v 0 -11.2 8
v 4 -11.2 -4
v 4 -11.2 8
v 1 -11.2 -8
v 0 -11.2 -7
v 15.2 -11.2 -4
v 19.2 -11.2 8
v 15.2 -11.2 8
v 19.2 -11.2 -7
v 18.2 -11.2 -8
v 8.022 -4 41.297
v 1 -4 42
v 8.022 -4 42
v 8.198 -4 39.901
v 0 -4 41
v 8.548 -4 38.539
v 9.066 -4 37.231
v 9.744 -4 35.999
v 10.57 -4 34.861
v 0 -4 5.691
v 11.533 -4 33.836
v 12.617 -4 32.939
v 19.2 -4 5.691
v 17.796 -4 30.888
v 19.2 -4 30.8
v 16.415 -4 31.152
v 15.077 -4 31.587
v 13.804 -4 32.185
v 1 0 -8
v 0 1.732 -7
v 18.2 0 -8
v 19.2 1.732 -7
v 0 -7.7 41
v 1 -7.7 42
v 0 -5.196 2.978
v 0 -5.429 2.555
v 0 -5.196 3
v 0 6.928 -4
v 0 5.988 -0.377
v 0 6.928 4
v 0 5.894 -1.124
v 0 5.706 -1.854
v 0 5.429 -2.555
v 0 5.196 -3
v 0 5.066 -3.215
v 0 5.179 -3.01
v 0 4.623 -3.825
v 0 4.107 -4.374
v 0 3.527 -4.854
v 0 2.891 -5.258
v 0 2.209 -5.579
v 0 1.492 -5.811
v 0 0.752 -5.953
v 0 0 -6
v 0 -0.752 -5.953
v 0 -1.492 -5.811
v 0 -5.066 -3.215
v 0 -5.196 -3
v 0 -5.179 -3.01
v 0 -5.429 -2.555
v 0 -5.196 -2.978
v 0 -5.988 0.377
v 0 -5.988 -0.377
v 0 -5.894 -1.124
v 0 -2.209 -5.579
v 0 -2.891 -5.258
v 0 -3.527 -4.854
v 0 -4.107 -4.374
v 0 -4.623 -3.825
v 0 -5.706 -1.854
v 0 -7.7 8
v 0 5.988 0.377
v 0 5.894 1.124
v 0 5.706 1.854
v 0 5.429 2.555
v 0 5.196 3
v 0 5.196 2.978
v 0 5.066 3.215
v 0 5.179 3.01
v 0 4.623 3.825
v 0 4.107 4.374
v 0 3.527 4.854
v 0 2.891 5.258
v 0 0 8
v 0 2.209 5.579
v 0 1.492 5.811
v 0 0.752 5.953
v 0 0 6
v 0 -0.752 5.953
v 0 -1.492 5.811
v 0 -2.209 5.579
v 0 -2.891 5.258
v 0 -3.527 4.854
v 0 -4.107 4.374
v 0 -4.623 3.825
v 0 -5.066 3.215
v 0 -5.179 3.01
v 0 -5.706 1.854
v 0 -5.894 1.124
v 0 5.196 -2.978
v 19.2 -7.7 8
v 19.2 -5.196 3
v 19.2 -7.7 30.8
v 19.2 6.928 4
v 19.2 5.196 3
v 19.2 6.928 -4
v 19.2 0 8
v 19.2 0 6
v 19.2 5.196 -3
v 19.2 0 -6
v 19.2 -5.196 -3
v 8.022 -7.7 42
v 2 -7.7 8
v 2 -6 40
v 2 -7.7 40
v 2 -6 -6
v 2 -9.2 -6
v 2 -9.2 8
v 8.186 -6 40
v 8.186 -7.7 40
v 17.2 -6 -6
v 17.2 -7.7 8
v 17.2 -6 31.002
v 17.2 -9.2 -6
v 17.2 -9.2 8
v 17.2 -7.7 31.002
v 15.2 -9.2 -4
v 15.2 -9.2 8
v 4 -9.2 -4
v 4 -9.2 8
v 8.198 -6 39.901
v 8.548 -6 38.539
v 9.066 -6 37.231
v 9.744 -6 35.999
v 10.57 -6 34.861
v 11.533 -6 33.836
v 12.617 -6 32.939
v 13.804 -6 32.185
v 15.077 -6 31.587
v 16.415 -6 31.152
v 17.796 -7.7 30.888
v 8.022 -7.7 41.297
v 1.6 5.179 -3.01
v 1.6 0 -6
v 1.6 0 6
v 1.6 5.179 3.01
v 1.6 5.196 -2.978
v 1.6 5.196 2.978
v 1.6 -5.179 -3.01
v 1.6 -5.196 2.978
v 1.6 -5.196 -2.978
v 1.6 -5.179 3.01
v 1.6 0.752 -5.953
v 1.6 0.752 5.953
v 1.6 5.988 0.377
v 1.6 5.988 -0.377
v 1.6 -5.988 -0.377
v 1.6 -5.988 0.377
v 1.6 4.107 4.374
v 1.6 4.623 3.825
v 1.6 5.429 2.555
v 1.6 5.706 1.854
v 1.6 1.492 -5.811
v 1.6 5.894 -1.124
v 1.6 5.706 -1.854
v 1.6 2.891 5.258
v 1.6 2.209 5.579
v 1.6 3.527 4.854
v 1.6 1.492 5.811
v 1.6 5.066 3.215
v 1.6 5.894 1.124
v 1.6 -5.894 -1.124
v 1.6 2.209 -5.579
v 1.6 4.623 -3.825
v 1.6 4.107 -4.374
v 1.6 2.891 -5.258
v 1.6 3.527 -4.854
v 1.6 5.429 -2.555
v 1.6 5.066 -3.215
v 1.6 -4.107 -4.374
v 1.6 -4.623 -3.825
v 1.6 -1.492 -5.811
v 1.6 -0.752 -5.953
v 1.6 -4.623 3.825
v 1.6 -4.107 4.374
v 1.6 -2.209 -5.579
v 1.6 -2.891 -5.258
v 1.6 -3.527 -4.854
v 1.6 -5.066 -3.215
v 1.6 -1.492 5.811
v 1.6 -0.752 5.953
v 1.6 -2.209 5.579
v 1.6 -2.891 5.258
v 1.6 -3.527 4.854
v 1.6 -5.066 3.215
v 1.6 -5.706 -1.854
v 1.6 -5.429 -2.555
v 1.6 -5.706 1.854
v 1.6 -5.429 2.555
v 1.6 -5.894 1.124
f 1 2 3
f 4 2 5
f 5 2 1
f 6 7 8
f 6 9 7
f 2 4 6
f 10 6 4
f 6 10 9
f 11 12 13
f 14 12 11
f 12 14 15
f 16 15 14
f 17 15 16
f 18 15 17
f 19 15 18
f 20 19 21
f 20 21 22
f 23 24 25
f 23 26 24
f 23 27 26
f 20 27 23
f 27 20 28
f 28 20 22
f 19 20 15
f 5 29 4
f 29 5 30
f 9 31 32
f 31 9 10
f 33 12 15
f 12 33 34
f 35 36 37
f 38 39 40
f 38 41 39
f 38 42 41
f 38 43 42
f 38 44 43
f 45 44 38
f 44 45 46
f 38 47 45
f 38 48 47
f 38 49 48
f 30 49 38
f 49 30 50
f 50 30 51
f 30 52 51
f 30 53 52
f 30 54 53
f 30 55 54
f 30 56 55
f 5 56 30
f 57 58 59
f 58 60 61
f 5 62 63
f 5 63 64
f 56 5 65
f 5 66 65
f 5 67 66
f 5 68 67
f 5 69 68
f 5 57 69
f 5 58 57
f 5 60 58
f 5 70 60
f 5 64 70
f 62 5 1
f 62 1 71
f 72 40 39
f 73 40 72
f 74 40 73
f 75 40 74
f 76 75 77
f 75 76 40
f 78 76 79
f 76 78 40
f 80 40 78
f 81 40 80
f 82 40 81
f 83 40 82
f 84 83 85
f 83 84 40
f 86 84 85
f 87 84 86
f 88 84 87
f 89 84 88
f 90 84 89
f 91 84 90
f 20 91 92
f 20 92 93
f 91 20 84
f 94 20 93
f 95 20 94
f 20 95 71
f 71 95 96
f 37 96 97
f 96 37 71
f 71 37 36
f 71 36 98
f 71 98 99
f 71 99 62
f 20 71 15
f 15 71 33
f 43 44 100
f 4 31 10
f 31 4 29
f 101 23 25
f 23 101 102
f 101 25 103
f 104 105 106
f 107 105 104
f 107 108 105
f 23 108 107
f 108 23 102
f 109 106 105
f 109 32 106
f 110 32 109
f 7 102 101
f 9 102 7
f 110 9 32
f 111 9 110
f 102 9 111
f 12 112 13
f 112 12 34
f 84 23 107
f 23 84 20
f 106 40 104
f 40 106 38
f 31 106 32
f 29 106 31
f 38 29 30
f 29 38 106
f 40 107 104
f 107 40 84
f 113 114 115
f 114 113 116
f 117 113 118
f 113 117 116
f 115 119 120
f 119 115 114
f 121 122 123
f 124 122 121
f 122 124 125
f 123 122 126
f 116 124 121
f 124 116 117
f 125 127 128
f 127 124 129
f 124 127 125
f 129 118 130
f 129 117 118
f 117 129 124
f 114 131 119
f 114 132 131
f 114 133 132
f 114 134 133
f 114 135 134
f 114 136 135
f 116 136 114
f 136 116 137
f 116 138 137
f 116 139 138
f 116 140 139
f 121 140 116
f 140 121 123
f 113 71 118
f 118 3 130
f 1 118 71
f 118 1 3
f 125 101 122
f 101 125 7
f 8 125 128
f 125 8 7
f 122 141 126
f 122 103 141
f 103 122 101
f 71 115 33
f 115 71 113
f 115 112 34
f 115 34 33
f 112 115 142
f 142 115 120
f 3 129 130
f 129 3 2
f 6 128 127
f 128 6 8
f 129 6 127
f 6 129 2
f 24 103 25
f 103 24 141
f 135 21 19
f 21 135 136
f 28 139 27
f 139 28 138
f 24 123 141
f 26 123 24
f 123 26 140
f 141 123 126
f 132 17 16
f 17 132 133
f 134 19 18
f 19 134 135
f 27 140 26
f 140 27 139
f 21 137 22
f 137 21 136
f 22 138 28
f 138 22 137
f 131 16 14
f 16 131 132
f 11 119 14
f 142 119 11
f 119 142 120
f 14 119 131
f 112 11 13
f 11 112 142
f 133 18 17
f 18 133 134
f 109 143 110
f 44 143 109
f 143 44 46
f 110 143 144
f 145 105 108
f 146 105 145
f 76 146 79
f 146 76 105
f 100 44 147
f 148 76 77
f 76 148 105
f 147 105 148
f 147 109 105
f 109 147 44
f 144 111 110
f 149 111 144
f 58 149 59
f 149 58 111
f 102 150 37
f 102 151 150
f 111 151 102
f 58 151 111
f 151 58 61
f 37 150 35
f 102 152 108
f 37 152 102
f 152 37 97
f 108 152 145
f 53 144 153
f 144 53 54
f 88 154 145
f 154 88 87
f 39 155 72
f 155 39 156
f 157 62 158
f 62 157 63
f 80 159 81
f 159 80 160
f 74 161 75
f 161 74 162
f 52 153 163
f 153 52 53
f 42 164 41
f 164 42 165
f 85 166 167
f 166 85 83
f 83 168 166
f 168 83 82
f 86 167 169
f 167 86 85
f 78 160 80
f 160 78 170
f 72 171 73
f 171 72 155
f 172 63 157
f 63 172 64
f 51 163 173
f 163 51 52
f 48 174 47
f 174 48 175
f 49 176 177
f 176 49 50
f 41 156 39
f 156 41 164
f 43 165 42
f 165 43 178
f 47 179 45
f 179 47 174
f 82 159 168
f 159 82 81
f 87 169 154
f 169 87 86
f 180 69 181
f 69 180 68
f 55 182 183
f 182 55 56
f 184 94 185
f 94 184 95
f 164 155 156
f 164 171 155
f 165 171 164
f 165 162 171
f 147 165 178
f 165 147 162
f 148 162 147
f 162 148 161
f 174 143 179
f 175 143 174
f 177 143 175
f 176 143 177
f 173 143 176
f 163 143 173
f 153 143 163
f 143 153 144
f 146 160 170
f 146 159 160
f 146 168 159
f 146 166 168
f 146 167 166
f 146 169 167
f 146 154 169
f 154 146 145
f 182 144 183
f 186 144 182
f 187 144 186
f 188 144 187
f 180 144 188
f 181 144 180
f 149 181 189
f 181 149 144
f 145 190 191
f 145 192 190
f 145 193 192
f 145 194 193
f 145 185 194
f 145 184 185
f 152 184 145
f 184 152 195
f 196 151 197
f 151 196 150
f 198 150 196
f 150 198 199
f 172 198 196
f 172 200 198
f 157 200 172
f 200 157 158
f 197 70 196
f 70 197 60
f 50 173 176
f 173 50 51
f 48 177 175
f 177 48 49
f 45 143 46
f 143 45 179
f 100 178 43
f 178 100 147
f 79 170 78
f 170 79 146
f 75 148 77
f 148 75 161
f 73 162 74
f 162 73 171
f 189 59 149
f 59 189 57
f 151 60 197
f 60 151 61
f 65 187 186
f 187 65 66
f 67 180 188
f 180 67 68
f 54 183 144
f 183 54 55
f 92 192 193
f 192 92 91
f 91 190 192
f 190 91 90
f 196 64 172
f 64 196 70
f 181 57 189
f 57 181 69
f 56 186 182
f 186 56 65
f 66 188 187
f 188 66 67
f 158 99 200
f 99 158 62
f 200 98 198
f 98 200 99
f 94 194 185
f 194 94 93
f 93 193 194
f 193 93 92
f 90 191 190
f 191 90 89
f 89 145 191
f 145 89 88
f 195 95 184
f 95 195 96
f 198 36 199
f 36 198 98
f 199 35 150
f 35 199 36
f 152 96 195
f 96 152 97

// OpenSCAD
// file: ../shapes.scad
module roundedCube(size, radius, center = false) {
  translate([center ? -(size[0] / 2) : 0, center ? -(size[1] / 2) : 0, center ? -(size[2] / 2) : 0]) {
    translate([radius, radius, 0]) cube([size[0] - radius * 2, size[1] - radius * 2, size[2]]);

    for (y = [0:1]) {
      for (x = [0:1]) {
        translate([x * (size[0] - radius * 2) + radius, y * (size[1] - radius * 2) + radius, 0]) cylinder(r=radius, h=size[2]);
      }
    }

    for (i = [0:1]) {
      translate([i * (size[0] - radius), radius, 0]) cube([radius, size[1] - radius * 2, size[2]]);
      translate([radius, i * (size[1] - radius), 0]) cube([size[0] - radius * 2, radius, size[2]]);
    }
  }
}
// file: const.scad
tolerance = .2;
shift = 1;

tile_width = 14.2;
tile_height = 45;
tile_depth = 2.2;
tile_radius = 2;
tile_count = 3;

holder_edge = 2;
holder_width = tile_width + 2 * holder_edge + 5 * tolerance;
holder_height = tile_height + 2 * holder_edge + 5 * tolerance;
holder_depth = tile_depth + 2 * holder_edge + 5 * tolerance;
holder_connectorradius = 8;
holder_radius = 1;

rod_radius = 4;

link_indent = 1.6;
link_innerradius = 4;
link_outerradius = 6;

base_edge = 4;
base_width = tile_count * holder_width + 2 * base_edge + 2 * tolerance;
base_holderanglemin = 10;
base_holderanglemax = 100;
base_rodoffset = 10;
base_rodspacing = 2;
base_height = 4;
base_depth = 28;
base_indent = 2;
base_radius = 1;

foot_height = 1;
foot_radius = 2;
// main file
include <const.scad>
use <../shapes.scad>

holder();

module holder() {
  difference() {
    // base
    translate([0, -holder_connectorradius + 2 * holder_edge, -holder_connectorradius]) {
      rotate([90, 0, 0]) {
        roundedCube([holder_width, holder_height, holder_depth], radius=holder_radius, $fn=4);
        translate([0, 0, -2 * holder_connectorradius + 2 * holder_edge]) {
          intersection() {
            roundedCube([holder_width, 2 * holder_connectorradius + holder_edge, 2 * holder_connectorradius], radius=holder_radius, $fn=4);
            union() {
              translate([0, holder_connectorradius, holder_connectorradius]) rotate([90, 0, 90]) cylinder(r=holder_connectorradius, h=holder_width, $fn=6);
              translate([0, 0, holder_connectorradius]) roundedCube([holder_width, holder_connectorradius, holder_connectorradius], radius=holder_radius, $fn=4);
            }
          }
        }
      }
    }

    // link hole
    translate([-shift / 2, 0, 0]) rotate([0, 90, 0]) cylinder(r=link_outerradius, h=holder_width + shift, $fn=6);
    translate([-shift, 0, 0]) rotate([0, 90, 0]) cylinder(r=link_outerradius, h=link_indent + shift, $fn=50);

    // tile hole
    translate([0, -(holder_connectorradius + holder_depth) + 2 * holder_edge, -holder_connectorradius]) {
      translate([holder_edge, holder_edge, holder_edge]) cube([holder_width - 2 * holder_edge, holder_depth - 2 * holder_edge, holder_height - 2 * holder_edge]);
      translate([-shift / 2, -shift / 2, 2 * holder_connectorradius]) cube([holder_width + shift, 1.5 * holder_edge + shift, holder_height - 2 * holder_edge]);
      translate([2 * holder_edge, -shift / 2, 2 * holder_edge]) cube([holder_width - 4 * holder_edge, holder_edge + shift, 2 * (holder_connectorradius - holder_edge) + shift]);
      translate([holder_width, -shift / 2, holder_height]) rotate([0, 90, 90]) cylinder(r=holder_width - 4 * holder_edge, h=holder_depth + shift, $fn=50);
    }
  }
}
